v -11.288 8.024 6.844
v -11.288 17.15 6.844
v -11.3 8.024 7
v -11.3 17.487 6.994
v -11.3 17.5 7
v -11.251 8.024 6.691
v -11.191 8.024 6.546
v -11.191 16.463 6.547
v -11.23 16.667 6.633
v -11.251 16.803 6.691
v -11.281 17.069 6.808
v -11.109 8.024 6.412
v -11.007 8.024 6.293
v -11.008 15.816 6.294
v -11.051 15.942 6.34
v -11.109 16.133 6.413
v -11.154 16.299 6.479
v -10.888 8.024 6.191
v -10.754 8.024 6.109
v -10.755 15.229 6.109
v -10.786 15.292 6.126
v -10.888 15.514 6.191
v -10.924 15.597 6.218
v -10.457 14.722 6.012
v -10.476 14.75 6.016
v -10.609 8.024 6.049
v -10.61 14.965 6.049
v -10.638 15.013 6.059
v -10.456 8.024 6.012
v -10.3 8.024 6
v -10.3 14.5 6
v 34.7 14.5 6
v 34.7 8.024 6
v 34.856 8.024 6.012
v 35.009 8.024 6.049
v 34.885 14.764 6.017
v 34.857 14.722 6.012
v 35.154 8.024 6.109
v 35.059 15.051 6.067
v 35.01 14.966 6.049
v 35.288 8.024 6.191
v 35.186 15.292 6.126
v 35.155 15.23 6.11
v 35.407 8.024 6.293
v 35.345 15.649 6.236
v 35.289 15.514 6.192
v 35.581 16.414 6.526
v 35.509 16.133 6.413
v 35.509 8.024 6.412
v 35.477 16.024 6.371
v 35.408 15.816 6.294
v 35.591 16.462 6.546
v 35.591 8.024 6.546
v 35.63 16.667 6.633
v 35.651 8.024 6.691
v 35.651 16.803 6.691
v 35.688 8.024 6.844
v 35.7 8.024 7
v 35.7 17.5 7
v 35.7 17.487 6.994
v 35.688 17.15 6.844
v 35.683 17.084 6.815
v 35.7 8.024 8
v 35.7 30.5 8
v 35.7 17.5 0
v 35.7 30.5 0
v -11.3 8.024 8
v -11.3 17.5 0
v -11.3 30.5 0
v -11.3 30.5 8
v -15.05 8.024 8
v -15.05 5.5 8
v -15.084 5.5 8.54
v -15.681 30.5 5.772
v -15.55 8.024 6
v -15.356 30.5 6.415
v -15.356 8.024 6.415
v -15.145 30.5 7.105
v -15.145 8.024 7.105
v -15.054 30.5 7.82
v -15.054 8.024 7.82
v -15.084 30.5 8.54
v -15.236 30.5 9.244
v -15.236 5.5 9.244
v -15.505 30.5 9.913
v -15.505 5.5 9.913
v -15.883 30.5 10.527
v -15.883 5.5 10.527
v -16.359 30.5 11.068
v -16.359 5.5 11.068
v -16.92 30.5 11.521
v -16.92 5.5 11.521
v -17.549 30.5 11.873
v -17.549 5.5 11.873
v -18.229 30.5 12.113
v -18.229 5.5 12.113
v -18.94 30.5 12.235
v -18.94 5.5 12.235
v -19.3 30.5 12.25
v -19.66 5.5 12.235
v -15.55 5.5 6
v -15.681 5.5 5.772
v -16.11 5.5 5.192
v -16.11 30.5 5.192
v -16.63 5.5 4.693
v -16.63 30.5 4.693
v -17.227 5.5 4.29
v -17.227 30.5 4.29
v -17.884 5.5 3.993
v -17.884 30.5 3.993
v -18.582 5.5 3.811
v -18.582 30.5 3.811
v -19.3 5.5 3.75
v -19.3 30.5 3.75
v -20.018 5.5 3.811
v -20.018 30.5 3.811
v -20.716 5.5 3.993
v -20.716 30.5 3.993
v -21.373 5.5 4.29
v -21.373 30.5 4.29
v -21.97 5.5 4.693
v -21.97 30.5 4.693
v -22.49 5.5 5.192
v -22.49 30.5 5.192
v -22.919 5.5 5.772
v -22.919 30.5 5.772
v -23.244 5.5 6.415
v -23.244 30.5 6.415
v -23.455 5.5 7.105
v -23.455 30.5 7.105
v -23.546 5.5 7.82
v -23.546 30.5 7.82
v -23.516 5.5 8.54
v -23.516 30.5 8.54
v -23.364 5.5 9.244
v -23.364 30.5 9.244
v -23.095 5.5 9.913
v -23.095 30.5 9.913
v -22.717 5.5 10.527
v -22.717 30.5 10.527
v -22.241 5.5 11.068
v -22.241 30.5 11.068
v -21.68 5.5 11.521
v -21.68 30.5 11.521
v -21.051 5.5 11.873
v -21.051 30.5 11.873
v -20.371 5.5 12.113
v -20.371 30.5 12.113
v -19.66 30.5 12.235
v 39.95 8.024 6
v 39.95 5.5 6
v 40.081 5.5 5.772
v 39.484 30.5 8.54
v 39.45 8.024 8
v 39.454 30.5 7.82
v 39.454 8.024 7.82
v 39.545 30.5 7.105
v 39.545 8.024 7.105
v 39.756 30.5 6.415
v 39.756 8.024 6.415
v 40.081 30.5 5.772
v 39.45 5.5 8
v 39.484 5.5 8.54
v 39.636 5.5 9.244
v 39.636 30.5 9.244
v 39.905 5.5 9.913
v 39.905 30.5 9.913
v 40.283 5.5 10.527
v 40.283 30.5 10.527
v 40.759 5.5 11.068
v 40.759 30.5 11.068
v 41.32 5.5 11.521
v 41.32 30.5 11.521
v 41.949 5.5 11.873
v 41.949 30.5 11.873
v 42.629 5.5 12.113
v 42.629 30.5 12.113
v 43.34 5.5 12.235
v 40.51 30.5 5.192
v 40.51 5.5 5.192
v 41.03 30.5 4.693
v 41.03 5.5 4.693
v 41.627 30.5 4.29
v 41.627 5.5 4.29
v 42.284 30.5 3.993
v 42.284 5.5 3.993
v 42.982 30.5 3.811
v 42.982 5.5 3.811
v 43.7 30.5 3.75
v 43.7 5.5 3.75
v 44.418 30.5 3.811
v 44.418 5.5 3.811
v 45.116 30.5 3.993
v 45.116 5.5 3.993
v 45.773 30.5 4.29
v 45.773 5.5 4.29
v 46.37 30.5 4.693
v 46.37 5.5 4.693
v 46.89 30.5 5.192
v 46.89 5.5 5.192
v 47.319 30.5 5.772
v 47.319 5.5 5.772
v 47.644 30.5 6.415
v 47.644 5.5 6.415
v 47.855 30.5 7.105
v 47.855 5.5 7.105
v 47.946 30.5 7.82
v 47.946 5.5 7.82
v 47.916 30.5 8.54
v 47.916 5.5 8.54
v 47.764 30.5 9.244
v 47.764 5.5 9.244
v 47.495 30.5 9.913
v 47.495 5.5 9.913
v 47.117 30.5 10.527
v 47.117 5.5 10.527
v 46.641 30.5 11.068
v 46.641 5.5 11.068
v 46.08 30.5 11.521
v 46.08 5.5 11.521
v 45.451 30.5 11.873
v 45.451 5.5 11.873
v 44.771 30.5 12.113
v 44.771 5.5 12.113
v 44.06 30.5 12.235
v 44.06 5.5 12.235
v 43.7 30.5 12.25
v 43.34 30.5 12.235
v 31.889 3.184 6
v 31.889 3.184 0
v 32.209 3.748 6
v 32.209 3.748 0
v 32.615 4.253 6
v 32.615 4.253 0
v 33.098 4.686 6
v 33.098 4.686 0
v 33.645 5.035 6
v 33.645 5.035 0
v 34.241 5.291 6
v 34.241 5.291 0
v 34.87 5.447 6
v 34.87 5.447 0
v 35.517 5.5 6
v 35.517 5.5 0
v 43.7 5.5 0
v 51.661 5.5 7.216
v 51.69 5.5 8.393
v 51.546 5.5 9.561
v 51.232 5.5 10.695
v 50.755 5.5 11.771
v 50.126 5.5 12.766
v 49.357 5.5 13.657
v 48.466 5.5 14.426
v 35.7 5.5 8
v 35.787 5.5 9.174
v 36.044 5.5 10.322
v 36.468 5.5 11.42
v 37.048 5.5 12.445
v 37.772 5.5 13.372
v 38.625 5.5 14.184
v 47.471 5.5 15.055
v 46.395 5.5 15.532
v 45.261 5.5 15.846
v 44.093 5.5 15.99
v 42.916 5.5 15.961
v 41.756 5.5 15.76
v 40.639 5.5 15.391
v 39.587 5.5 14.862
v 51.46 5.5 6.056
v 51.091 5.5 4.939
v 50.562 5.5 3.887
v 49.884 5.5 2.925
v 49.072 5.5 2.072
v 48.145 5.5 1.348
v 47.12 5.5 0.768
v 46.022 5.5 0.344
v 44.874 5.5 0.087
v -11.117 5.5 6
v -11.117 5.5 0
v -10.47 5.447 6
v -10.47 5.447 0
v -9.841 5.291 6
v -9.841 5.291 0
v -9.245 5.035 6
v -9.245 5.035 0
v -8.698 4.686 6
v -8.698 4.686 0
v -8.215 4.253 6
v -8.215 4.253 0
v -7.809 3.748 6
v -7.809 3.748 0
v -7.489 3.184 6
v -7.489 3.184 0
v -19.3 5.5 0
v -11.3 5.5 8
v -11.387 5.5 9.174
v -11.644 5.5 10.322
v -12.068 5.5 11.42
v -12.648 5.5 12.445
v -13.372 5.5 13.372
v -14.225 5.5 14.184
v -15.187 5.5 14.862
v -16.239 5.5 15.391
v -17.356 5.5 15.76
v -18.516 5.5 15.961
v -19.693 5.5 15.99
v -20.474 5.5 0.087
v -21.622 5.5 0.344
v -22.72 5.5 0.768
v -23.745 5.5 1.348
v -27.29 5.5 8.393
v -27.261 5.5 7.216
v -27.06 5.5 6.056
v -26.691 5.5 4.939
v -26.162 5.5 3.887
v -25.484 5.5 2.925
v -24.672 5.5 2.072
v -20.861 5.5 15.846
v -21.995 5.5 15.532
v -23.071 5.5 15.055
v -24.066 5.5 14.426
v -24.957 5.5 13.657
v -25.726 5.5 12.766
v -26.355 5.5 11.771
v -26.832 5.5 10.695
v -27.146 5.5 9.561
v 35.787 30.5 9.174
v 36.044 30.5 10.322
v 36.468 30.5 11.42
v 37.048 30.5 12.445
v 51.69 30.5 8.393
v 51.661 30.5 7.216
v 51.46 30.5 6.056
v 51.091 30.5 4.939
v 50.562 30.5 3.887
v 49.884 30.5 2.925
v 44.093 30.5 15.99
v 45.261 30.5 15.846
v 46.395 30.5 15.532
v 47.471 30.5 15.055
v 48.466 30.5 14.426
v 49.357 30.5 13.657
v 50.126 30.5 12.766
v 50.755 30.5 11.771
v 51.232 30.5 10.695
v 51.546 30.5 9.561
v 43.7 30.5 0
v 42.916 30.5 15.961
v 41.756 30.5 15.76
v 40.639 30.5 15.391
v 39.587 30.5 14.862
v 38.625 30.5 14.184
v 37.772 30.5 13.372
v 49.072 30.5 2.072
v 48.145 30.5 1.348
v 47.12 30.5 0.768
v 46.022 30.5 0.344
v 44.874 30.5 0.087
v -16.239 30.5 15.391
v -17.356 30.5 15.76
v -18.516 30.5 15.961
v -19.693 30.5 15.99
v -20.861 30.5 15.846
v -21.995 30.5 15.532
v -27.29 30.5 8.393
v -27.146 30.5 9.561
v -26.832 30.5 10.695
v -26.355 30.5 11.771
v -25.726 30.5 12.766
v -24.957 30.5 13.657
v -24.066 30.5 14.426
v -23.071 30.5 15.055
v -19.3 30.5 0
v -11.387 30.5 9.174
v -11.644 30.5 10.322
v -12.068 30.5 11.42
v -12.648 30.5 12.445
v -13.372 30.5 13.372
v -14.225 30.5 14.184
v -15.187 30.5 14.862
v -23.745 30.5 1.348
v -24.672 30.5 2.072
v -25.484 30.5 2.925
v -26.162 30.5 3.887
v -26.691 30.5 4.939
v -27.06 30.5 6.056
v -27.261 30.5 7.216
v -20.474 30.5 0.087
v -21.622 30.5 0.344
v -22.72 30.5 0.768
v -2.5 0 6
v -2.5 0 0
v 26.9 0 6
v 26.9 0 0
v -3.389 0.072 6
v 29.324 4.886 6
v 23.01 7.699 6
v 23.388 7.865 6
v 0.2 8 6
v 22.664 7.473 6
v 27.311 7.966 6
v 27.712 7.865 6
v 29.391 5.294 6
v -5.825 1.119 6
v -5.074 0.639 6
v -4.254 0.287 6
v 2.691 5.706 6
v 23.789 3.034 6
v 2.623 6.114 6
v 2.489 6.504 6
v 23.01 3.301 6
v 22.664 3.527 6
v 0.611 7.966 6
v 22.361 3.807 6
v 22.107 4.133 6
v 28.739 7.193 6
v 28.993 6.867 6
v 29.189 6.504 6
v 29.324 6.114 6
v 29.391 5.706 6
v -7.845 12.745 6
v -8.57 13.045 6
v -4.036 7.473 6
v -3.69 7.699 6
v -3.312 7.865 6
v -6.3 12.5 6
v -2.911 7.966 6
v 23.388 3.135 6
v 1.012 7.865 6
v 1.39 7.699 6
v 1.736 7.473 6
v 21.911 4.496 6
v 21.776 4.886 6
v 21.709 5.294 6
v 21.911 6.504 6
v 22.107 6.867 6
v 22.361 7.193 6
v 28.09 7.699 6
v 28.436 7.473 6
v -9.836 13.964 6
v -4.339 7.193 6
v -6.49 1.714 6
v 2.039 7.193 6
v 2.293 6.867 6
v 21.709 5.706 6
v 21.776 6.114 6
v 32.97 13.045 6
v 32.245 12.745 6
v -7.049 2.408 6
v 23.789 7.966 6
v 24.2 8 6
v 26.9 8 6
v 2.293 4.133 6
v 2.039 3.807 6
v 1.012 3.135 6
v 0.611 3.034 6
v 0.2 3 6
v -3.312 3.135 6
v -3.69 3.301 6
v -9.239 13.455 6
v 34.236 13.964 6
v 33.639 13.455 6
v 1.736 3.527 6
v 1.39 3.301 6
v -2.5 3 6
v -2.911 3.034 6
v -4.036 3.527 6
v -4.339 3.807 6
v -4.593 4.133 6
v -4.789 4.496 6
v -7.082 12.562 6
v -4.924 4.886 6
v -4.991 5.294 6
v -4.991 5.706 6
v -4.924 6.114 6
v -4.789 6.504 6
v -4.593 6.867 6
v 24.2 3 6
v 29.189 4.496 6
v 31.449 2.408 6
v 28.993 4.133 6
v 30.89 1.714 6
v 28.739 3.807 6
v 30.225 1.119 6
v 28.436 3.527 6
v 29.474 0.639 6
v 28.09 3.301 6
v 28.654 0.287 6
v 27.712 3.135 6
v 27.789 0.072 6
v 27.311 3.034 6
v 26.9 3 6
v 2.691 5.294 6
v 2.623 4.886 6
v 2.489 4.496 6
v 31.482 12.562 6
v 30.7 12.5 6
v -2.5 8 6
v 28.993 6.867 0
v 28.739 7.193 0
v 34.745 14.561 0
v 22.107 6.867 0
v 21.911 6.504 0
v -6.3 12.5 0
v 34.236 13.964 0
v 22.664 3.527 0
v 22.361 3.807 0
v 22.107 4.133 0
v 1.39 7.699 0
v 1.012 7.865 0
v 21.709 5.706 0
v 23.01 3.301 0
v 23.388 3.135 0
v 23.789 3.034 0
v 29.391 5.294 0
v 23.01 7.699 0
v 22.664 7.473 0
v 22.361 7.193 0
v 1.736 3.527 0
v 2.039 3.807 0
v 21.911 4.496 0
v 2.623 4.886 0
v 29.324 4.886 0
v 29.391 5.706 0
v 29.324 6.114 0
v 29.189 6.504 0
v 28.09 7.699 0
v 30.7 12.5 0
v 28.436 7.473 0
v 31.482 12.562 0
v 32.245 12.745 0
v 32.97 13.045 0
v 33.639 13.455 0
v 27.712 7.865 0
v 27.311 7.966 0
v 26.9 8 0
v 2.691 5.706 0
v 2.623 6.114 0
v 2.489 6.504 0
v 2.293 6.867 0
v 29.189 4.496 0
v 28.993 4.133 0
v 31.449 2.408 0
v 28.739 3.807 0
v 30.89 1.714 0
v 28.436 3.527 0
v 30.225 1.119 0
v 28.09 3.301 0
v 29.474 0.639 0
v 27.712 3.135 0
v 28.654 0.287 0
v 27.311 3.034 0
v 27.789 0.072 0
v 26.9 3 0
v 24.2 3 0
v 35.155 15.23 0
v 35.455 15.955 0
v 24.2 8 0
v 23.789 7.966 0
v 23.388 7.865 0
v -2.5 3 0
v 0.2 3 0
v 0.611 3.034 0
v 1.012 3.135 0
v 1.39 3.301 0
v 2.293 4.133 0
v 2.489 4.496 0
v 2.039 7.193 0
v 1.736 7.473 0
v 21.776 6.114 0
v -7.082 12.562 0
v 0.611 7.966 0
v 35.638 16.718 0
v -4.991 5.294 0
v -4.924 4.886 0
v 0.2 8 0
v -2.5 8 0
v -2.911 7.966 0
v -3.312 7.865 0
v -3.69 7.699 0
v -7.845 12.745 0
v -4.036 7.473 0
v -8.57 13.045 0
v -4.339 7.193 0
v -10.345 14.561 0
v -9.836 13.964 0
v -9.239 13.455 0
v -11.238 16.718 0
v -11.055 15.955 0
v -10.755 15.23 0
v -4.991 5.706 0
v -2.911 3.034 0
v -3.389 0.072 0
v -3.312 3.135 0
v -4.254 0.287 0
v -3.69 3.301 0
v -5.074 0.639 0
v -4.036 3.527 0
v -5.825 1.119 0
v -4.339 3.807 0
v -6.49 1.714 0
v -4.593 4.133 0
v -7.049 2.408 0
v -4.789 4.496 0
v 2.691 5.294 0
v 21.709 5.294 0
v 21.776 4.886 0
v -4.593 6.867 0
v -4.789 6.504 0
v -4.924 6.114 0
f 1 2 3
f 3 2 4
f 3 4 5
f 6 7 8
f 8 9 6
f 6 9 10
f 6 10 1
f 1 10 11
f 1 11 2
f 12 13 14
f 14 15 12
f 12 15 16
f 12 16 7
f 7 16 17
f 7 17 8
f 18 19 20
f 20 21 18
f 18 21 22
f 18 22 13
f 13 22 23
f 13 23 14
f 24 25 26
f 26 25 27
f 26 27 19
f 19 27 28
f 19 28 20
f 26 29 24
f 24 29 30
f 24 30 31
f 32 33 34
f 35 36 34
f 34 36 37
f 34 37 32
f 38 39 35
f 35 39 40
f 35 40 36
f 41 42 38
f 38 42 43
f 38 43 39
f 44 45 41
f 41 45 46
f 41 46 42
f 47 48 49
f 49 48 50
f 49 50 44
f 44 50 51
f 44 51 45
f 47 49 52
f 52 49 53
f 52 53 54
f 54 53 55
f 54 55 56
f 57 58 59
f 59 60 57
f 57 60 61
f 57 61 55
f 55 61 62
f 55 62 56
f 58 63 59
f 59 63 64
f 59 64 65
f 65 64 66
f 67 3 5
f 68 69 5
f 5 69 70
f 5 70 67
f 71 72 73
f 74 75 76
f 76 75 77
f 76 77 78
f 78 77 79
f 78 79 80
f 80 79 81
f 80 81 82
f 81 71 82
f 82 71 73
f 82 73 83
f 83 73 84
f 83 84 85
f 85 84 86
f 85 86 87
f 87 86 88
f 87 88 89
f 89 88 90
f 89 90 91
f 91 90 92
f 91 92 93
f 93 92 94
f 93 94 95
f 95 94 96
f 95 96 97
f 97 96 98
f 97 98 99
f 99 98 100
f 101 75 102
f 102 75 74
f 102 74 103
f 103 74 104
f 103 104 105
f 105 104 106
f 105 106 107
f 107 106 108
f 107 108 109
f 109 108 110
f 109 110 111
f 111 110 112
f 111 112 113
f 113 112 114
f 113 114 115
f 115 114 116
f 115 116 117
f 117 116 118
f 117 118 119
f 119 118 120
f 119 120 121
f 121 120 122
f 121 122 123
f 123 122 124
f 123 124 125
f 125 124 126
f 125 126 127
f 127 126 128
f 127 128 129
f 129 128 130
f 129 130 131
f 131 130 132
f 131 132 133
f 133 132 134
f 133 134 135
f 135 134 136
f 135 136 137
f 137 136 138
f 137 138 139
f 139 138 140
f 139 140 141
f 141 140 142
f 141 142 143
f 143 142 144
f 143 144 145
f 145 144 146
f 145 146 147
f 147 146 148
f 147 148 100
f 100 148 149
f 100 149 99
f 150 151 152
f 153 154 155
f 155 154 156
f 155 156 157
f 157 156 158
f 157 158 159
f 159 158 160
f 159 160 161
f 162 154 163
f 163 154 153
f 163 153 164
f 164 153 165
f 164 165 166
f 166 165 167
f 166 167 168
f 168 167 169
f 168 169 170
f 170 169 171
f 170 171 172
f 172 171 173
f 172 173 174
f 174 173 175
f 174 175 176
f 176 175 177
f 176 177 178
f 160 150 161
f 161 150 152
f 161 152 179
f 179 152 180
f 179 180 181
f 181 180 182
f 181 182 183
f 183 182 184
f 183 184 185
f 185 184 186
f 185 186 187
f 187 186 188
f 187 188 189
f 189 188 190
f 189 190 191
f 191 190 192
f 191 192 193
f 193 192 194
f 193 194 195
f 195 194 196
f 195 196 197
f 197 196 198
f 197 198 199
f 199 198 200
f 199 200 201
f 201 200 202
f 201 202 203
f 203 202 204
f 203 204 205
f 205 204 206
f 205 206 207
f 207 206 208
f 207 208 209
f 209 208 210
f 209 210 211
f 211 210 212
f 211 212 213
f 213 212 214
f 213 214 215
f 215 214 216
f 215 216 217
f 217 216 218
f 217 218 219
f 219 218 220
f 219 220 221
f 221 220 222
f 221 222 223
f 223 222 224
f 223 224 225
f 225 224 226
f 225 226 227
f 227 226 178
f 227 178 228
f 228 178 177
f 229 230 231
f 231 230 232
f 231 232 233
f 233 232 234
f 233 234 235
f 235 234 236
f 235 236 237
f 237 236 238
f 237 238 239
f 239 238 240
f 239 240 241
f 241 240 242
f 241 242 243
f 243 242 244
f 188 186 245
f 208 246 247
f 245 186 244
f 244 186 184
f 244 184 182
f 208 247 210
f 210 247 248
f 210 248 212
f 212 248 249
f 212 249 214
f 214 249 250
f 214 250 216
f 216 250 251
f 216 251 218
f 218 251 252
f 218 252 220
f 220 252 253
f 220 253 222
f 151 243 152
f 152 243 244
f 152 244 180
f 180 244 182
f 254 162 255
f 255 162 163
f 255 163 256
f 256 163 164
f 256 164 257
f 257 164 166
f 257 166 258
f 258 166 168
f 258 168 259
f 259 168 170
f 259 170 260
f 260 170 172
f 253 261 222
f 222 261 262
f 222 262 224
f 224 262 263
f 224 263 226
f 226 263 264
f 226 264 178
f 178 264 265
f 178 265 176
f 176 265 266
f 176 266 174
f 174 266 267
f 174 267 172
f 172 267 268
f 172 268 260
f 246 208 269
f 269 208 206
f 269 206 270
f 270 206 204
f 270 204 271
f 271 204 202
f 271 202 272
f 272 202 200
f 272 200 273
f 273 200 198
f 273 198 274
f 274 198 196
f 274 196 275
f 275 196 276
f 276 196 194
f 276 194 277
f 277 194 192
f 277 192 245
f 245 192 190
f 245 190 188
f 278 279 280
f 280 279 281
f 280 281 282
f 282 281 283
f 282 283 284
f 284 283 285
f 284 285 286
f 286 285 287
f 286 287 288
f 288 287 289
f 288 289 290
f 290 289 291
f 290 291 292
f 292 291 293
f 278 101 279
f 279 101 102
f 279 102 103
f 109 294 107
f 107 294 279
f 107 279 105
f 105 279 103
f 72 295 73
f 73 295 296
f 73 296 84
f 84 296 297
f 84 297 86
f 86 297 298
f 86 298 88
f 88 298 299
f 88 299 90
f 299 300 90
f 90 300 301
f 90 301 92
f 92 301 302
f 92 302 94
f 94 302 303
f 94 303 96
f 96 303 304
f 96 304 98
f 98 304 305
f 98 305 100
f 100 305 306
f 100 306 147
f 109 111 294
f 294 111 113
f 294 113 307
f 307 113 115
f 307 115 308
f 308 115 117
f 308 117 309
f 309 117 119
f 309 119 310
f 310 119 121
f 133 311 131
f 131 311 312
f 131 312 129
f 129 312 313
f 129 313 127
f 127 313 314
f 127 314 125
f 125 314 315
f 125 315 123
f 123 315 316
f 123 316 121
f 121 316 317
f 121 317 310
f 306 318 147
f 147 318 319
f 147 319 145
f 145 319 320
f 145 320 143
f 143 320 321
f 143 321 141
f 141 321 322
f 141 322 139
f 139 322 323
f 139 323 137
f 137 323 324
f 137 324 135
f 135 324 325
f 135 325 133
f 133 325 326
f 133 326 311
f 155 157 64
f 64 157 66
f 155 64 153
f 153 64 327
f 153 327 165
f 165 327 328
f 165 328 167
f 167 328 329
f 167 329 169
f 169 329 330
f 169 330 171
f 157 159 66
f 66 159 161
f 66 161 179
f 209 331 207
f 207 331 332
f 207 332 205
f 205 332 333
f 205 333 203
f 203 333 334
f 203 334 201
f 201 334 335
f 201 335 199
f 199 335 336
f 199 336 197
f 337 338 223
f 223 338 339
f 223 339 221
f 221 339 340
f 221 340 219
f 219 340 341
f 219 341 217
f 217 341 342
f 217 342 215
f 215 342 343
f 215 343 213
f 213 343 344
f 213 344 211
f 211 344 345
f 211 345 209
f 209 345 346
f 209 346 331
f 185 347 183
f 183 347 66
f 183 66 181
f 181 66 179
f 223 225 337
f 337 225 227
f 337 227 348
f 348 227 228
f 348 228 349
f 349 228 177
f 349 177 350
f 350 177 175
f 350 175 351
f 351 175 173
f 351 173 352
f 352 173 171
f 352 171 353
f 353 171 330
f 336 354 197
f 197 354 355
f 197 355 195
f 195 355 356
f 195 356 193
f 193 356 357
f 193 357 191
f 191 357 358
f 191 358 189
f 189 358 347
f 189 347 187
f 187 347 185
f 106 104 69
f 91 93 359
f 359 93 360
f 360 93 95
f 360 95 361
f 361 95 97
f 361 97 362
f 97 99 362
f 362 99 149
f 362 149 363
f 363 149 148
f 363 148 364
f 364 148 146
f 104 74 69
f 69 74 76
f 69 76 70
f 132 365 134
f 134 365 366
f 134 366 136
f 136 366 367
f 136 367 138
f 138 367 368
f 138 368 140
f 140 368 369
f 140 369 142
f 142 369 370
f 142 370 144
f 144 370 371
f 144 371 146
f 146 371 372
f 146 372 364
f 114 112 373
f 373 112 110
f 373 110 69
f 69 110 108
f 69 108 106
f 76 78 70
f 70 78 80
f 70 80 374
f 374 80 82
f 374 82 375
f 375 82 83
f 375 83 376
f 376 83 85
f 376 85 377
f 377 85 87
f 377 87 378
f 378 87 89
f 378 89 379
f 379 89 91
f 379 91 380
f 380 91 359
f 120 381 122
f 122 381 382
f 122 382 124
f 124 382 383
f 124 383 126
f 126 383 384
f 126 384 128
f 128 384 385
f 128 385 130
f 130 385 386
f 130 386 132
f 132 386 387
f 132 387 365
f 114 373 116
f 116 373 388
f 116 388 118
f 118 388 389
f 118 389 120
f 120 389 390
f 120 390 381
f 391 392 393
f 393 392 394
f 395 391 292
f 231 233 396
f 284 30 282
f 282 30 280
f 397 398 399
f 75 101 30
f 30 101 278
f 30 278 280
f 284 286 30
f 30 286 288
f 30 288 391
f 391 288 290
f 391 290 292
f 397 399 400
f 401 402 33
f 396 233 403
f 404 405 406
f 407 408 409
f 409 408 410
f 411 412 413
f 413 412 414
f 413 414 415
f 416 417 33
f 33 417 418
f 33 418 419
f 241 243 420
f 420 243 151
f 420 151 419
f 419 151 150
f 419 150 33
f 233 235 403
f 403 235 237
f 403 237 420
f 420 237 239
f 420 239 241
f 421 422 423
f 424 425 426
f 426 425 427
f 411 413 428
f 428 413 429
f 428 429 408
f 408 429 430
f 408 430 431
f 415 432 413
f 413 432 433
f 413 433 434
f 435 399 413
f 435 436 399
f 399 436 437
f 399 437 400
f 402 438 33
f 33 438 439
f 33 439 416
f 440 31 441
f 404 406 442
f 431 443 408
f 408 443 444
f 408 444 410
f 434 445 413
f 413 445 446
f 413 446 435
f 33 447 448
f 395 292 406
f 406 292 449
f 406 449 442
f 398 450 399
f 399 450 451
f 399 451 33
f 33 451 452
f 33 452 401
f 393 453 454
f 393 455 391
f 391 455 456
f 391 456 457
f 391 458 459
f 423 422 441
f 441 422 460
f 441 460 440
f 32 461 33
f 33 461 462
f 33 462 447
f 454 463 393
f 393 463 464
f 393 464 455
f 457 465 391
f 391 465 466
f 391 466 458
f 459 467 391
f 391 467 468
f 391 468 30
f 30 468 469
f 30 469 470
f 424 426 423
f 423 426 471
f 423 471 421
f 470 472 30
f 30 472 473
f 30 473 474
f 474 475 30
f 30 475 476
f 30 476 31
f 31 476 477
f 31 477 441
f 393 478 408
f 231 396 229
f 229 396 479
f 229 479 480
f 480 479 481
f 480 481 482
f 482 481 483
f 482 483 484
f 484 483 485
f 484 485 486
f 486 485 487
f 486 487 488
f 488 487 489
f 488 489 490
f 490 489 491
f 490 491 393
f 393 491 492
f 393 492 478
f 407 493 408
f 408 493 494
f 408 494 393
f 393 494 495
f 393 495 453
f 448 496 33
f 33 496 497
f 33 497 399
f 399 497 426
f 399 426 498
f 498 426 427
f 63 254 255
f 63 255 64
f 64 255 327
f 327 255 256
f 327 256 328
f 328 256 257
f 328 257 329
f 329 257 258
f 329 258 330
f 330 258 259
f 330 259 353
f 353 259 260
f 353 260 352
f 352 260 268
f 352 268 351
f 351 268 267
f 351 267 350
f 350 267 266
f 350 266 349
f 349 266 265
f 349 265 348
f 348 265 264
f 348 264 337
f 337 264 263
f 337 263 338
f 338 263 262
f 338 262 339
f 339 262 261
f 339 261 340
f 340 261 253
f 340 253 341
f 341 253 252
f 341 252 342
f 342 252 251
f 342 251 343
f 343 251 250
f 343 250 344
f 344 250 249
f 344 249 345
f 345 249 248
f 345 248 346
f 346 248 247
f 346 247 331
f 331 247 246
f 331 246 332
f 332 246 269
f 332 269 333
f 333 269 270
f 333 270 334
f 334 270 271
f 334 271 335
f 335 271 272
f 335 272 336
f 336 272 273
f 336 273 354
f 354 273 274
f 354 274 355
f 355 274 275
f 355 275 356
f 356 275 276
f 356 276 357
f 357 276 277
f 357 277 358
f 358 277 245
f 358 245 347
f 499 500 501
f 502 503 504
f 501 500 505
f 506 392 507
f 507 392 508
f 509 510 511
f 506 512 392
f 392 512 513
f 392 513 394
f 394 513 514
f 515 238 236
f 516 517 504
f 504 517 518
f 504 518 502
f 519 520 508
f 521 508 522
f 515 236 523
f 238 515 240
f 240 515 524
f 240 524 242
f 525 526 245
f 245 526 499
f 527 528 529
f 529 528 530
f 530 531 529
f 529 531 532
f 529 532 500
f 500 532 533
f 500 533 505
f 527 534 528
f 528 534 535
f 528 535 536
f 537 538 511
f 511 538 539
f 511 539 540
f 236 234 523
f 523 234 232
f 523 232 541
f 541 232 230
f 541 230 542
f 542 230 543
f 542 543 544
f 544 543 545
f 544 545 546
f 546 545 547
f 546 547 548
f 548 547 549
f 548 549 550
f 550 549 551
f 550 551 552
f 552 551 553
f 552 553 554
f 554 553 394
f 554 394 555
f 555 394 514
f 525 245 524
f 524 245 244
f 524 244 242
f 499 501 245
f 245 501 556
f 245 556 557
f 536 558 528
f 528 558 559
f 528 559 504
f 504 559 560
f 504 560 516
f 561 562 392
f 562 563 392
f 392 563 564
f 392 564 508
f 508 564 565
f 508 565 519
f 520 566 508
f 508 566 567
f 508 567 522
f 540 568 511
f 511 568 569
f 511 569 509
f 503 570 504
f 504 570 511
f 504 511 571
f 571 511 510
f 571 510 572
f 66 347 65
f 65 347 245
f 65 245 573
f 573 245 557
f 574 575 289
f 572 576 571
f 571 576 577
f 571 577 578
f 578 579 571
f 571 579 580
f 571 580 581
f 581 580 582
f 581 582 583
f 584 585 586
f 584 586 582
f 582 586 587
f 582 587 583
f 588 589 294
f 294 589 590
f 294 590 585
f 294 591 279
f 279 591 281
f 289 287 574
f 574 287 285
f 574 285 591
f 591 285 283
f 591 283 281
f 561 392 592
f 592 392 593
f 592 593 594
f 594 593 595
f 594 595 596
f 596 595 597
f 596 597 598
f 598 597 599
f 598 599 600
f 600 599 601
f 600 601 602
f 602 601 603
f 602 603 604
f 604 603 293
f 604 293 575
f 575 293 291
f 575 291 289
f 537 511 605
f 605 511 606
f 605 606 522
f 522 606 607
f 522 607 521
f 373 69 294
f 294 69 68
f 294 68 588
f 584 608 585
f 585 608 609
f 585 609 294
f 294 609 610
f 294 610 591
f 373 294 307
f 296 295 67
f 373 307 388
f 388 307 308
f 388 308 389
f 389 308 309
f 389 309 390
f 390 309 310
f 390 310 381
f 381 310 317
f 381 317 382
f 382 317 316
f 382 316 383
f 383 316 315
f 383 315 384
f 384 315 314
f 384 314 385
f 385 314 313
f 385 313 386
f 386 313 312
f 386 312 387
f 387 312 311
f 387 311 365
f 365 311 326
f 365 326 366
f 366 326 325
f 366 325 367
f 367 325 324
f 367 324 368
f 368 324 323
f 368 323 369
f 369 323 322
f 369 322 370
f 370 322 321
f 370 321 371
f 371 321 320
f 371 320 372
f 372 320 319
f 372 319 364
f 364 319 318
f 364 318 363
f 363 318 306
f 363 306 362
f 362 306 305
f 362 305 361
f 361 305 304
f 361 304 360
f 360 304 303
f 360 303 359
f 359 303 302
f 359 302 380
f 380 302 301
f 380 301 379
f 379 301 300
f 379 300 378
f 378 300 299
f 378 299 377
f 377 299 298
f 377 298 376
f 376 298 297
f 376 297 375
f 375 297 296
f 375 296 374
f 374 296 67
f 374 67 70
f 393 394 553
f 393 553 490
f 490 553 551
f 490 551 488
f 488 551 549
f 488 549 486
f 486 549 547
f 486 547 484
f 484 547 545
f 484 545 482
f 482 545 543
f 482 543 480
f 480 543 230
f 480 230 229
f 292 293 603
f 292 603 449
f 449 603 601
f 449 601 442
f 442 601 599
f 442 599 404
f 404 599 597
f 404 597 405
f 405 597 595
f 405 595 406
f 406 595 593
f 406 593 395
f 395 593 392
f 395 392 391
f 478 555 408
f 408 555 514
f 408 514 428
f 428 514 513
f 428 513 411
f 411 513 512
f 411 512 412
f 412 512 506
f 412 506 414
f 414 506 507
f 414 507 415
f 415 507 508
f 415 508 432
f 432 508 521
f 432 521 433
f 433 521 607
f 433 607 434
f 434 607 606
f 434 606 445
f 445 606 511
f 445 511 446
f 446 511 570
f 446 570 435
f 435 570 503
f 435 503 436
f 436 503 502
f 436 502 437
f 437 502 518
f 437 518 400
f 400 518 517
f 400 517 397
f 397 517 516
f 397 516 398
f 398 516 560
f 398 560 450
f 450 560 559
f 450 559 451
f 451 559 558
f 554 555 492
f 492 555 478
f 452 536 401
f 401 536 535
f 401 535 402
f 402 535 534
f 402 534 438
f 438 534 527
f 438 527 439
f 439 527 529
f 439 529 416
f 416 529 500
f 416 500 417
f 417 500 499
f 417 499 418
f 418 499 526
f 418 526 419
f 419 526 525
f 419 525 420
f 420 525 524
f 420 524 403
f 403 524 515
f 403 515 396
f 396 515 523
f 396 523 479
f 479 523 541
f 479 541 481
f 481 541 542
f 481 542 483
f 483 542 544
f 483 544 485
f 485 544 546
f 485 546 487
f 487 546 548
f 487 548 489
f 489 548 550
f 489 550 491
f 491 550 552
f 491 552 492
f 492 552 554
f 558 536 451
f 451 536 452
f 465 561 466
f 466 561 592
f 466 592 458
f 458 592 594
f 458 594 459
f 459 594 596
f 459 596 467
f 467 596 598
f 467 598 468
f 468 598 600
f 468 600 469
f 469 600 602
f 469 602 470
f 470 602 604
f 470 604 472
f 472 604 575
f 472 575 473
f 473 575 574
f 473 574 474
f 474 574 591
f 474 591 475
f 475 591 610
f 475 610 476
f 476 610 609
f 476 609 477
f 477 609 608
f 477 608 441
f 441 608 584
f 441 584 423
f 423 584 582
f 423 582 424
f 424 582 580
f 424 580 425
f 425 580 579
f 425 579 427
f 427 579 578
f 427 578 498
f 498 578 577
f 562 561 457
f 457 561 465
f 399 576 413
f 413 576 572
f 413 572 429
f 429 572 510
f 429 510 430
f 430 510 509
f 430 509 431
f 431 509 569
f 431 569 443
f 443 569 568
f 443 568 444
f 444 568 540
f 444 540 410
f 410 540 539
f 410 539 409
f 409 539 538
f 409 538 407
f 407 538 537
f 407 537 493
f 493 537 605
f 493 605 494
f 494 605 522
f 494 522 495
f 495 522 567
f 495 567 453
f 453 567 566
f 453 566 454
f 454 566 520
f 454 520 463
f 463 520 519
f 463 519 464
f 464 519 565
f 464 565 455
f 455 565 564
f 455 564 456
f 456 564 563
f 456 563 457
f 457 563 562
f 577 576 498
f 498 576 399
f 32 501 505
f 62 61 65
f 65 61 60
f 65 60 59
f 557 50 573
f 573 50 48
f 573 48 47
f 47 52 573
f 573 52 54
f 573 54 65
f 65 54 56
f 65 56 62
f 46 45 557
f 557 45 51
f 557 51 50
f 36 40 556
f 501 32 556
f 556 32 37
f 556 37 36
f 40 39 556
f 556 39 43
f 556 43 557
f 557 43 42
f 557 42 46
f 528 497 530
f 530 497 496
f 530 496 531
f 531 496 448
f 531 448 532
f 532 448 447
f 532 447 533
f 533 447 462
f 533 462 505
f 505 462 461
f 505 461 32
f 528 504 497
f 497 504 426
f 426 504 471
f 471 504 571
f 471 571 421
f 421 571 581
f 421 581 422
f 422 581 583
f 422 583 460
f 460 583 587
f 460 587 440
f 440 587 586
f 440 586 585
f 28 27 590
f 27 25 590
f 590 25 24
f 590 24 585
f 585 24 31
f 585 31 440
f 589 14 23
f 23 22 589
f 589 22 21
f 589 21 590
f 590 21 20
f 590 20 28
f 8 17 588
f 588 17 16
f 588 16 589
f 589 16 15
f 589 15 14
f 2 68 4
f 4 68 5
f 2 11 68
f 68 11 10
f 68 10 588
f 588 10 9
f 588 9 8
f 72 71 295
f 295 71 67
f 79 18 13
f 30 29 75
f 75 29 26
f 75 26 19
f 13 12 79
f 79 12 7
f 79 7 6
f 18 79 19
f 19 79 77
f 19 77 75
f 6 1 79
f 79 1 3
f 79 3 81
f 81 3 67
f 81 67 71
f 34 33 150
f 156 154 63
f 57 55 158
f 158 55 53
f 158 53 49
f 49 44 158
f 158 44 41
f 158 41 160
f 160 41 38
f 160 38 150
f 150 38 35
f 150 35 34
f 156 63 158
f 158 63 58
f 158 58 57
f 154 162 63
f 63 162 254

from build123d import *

# Parameters (mm, degrees)
SKETCH_5_R               = 4.25
EXTRUDE_5_DEPTH          = 30.5
CUT_EXTRUDE_2_DEPTH      = 63.121976788
CUT_EXTRUDE_5_DEPTH      = 42
CUT_EXTRUDE_5_DEPTH_BACK = 18
SKETCH_9_W               = 2
SKETCH_9_H               = 3


with BuildPart() as part:
    # 草图5 → 凸台-拉伸5 (new body)
    with BuildSketch(Plane(origin=(0, 0, 0), x_dir=(1, 0, 0), z_dir=(0, 1, 0))):
        with BuildLine():
            Line((-19.3, 0), (43.7, 0))
            ThreePointArc((43.7, 0), (49.356854249, -13.656854249), (35.7, -8))
            Line((35.7, -8), (35.7, -7))
            ThreePointArc((35.7, -7), (35.407106781, -6.292893219), (34.7, -6))
            Line((34.7, -6), (-10.3, -6))
            ThreePointArc((-10.3, -6), (-11.007106781, -6.292893219), (-11.3, -7))
            Line((-11.3, -7), (-11.3, -8))
            ThreePointArc((-11.3, -8), (-24.956854249, -13.656854249), (-19.3, 0))
        make_face()
        with Locations(Location((-19.3, -8, 0), (0, 0, 90))):
            Circle(SKETCH_5_R, mode=Mode.SUBTRACT)
        with Locations(Location((43.7, -8, 0), (0, 0, 90))):
            Circle(SKETCH_5_R, mode=Mode.SUBTRACT)
    extrude(amount=EXTRUDE_5_DEPTH)

    # 草图1 → 切除-拉伸2 (cut, through all)
    with BuildSketch(Plane.XY):
        with BuildLine():
            Line((24.2, 3), (26.9, 3))
            ThreePointArc((26.9, 3), (29.4, 5.5), (26.9, 8))
            Line((26.9, 8), (24.2, 8))
            ThreePointArc((24.2, 8), (21.7, 5.5), (24.2, 3))
        make_face()
        with BuildLine():
            Line((-2.5, 8), (0.2, 8))
            ThreePointArc((0.2, 8), (2.7, 5.5), (0.2, 3))
            Line((0.2, 3), (-2.5, 3))
            ThreePointArc((-2.5, 3), (-5, 5.5), (-2.5, 8))
        make_face()
        with BuildLine():
            Line((35.51684397, 5.5), (51.7, 5.5))
            Line((51.7, 5.5), (51.7, 0))
            Line((51.7, 0), (26.9, 0))
            ThreePointArc((26.9, 0), (29.859151728, 0.863900233), (31.88869914, 3.184210526))
            ThreePointArc((31.88869914, 3.184210526), (33.364733622, 4.871708922), (35.51684397, 5.5))
        make_face()
        with BuildLine():
            Line((-27.3, 5.5), (-11.11684397, 5.5))
            ThreePointArc((-11.11684397, 5.5), (-8.964733622, 4.871708922), (-7.48869914, 3.184210526))
            ThreePointArc((-7.48869914, 3.184210526), (-5.459151728, 0.863900233), (-2.5, 0))
            Line((-2.5, 0), (-27.3, 0))
            Line((-27.3, 0), (-27.3, 5.5))
        make_face()
        with BuildLine():
            Line((-11.3, 30.5), (-11.3, 17.5))
            ThreePointArc((-11.3, 17.5), (-9.835533906, 13.964466094), (-6.3, 12.5))
            Line((-6.3, 12.5), (30.7, 12.5))
            ThreePointArc((30.7, 12.5), (34.235533906, 13.964466094), (35.7, 17.5))
            Line((35.7, 17.5), (35.7, 30.5))
            Line((35.7, 30.5), (-11.3, 30.5))
        make_face()
    extrude(amount=CUT_EXTRUDE_2_DEPTH, mode=Mode.SUBTRACT)

    # 草图9 → 切除-拉伸5 (cut, two sides: drawn at the far end of the back side and taken through both)
    with BuildSketch(Plane(origin=(0, 0, 0), x_dir=(0, 0, -1), z_dir=(1, 0, 0)).offset(-CUT_EXTRUDE_5_DEPTH_BACK)):
        with Locations((-7, 6.523868095)):
            Rectangle(SKETCH_9_W, SKETCH_9_H)
    extrude(amount=CUT_EXTRUDE_5_DEPTH + CUT_EXTRUDE_5_DEPTH_BACK, mode=Mode.SUBTRACT)


solid = part.part
